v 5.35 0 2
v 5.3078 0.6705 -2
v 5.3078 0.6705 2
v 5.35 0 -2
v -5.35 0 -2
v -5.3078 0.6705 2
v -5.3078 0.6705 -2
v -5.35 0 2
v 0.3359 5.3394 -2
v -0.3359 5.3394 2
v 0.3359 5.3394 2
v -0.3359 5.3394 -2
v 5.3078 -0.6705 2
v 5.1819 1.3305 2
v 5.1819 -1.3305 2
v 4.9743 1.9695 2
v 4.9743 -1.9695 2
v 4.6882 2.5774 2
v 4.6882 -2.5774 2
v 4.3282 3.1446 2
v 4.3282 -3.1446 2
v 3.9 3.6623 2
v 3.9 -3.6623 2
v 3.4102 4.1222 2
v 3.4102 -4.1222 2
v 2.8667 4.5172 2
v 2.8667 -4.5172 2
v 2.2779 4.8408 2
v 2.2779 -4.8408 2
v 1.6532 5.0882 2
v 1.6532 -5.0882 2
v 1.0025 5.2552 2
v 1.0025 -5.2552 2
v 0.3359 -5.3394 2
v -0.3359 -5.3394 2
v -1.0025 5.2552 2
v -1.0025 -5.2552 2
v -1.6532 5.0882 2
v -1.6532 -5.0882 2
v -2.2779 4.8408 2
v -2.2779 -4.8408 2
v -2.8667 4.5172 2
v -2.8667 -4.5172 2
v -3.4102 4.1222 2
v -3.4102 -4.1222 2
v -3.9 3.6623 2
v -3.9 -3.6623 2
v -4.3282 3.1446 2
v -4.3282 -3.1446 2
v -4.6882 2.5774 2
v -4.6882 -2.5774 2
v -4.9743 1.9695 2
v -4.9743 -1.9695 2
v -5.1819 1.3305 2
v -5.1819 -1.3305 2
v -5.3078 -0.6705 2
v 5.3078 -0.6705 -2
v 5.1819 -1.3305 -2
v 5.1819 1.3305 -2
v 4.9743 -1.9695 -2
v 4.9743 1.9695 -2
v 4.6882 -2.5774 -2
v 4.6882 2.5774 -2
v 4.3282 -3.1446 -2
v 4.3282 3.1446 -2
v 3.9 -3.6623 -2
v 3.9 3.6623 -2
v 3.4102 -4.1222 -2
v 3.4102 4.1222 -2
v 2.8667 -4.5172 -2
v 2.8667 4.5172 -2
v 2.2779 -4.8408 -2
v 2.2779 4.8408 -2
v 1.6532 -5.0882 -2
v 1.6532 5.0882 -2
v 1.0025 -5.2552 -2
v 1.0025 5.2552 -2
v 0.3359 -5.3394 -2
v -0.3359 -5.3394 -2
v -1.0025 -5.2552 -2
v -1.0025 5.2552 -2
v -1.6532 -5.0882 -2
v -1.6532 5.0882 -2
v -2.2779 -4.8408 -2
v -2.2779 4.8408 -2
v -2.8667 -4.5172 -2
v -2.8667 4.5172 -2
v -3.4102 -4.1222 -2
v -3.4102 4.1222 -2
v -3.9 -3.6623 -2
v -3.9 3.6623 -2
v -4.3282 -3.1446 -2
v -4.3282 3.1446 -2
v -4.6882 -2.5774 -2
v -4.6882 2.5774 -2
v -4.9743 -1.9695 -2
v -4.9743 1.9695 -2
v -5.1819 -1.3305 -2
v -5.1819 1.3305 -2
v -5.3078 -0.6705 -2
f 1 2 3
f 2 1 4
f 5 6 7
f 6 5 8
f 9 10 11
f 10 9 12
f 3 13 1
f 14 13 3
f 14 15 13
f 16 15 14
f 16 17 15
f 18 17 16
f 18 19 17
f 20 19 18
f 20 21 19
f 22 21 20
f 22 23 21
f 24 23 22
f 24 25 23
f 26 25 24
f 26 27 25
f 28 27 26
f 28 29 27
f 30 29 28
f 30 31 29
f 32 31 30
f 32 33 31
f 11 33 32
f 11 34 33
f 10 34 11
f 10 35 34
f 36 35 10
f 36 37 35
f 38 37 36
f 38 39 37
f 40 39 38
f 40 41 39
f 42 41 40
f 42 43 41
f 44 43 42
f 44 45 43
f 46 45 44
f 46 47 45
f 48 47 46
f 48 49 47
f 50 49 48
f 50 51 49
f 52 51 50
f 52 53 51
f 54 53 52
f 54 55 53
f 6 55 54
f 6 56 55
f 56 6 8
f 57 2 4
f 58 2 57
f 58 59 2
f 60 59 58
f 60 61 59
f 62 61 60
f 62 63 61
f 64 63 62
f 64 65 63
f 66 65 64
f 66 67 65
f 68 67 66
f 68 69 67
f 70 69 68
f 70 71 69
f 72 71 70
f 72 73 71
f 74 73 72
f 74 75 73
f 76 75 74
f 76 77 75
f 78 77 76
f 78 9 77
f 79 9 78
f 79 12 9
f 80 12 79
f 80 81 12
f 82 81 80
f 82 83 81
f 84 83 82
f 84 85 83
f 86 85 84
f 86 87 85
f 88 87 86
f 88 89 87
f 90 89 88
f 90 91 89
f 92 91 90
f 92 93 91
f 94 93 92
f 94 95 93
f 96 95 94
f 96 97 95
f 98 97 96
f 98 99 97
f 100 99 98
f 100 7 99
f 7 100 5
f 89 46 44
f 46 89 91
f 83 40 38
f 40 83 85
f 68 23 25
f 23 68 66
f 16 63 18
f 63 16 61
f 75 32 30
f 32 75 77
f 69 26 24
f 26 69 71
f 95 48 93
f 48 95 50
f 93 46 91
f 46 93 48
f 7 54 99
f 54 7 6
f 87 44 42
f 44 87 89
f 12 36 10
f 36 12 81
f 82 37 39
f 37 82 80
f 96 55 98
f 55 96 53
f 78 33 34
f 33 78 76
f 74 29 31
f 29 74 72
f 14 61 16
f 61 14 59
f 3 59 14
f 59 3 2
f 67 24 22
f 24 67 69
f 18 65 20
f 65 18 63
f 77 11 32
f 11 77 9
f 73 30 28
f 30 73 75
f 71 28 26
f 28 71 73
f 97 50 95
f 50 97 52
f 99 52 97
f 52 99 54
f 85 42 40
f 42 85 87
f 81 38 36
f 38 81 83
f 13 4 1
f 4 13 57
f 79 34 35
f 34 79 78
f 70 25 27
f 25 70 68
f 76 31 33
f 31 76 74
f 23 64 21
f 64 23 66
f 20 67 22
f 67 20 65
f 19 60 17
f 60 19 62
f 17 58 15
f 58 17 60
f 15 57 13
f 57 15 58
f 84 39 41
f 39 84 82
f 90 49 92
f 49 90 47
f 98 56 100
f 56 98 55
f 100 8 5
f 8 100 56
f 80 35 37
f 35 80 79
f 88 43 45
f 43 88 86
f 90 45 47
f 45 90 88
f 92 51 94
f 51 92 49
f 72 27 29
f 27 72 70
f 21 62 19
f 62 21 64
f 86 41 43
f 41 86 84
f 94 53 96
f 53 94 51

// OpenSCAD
$fn = 50;


difference() {
	union() {
		translate(v = [0, 0, -2.0000000000]) {
			cylinder(h = 4, r = 5.3500000000);
		}
	}
	union() {
		translate(v = [0, 0, -100.0000000000]) {
			cylinder(h = 200, r = 0);
		}
	}
}
